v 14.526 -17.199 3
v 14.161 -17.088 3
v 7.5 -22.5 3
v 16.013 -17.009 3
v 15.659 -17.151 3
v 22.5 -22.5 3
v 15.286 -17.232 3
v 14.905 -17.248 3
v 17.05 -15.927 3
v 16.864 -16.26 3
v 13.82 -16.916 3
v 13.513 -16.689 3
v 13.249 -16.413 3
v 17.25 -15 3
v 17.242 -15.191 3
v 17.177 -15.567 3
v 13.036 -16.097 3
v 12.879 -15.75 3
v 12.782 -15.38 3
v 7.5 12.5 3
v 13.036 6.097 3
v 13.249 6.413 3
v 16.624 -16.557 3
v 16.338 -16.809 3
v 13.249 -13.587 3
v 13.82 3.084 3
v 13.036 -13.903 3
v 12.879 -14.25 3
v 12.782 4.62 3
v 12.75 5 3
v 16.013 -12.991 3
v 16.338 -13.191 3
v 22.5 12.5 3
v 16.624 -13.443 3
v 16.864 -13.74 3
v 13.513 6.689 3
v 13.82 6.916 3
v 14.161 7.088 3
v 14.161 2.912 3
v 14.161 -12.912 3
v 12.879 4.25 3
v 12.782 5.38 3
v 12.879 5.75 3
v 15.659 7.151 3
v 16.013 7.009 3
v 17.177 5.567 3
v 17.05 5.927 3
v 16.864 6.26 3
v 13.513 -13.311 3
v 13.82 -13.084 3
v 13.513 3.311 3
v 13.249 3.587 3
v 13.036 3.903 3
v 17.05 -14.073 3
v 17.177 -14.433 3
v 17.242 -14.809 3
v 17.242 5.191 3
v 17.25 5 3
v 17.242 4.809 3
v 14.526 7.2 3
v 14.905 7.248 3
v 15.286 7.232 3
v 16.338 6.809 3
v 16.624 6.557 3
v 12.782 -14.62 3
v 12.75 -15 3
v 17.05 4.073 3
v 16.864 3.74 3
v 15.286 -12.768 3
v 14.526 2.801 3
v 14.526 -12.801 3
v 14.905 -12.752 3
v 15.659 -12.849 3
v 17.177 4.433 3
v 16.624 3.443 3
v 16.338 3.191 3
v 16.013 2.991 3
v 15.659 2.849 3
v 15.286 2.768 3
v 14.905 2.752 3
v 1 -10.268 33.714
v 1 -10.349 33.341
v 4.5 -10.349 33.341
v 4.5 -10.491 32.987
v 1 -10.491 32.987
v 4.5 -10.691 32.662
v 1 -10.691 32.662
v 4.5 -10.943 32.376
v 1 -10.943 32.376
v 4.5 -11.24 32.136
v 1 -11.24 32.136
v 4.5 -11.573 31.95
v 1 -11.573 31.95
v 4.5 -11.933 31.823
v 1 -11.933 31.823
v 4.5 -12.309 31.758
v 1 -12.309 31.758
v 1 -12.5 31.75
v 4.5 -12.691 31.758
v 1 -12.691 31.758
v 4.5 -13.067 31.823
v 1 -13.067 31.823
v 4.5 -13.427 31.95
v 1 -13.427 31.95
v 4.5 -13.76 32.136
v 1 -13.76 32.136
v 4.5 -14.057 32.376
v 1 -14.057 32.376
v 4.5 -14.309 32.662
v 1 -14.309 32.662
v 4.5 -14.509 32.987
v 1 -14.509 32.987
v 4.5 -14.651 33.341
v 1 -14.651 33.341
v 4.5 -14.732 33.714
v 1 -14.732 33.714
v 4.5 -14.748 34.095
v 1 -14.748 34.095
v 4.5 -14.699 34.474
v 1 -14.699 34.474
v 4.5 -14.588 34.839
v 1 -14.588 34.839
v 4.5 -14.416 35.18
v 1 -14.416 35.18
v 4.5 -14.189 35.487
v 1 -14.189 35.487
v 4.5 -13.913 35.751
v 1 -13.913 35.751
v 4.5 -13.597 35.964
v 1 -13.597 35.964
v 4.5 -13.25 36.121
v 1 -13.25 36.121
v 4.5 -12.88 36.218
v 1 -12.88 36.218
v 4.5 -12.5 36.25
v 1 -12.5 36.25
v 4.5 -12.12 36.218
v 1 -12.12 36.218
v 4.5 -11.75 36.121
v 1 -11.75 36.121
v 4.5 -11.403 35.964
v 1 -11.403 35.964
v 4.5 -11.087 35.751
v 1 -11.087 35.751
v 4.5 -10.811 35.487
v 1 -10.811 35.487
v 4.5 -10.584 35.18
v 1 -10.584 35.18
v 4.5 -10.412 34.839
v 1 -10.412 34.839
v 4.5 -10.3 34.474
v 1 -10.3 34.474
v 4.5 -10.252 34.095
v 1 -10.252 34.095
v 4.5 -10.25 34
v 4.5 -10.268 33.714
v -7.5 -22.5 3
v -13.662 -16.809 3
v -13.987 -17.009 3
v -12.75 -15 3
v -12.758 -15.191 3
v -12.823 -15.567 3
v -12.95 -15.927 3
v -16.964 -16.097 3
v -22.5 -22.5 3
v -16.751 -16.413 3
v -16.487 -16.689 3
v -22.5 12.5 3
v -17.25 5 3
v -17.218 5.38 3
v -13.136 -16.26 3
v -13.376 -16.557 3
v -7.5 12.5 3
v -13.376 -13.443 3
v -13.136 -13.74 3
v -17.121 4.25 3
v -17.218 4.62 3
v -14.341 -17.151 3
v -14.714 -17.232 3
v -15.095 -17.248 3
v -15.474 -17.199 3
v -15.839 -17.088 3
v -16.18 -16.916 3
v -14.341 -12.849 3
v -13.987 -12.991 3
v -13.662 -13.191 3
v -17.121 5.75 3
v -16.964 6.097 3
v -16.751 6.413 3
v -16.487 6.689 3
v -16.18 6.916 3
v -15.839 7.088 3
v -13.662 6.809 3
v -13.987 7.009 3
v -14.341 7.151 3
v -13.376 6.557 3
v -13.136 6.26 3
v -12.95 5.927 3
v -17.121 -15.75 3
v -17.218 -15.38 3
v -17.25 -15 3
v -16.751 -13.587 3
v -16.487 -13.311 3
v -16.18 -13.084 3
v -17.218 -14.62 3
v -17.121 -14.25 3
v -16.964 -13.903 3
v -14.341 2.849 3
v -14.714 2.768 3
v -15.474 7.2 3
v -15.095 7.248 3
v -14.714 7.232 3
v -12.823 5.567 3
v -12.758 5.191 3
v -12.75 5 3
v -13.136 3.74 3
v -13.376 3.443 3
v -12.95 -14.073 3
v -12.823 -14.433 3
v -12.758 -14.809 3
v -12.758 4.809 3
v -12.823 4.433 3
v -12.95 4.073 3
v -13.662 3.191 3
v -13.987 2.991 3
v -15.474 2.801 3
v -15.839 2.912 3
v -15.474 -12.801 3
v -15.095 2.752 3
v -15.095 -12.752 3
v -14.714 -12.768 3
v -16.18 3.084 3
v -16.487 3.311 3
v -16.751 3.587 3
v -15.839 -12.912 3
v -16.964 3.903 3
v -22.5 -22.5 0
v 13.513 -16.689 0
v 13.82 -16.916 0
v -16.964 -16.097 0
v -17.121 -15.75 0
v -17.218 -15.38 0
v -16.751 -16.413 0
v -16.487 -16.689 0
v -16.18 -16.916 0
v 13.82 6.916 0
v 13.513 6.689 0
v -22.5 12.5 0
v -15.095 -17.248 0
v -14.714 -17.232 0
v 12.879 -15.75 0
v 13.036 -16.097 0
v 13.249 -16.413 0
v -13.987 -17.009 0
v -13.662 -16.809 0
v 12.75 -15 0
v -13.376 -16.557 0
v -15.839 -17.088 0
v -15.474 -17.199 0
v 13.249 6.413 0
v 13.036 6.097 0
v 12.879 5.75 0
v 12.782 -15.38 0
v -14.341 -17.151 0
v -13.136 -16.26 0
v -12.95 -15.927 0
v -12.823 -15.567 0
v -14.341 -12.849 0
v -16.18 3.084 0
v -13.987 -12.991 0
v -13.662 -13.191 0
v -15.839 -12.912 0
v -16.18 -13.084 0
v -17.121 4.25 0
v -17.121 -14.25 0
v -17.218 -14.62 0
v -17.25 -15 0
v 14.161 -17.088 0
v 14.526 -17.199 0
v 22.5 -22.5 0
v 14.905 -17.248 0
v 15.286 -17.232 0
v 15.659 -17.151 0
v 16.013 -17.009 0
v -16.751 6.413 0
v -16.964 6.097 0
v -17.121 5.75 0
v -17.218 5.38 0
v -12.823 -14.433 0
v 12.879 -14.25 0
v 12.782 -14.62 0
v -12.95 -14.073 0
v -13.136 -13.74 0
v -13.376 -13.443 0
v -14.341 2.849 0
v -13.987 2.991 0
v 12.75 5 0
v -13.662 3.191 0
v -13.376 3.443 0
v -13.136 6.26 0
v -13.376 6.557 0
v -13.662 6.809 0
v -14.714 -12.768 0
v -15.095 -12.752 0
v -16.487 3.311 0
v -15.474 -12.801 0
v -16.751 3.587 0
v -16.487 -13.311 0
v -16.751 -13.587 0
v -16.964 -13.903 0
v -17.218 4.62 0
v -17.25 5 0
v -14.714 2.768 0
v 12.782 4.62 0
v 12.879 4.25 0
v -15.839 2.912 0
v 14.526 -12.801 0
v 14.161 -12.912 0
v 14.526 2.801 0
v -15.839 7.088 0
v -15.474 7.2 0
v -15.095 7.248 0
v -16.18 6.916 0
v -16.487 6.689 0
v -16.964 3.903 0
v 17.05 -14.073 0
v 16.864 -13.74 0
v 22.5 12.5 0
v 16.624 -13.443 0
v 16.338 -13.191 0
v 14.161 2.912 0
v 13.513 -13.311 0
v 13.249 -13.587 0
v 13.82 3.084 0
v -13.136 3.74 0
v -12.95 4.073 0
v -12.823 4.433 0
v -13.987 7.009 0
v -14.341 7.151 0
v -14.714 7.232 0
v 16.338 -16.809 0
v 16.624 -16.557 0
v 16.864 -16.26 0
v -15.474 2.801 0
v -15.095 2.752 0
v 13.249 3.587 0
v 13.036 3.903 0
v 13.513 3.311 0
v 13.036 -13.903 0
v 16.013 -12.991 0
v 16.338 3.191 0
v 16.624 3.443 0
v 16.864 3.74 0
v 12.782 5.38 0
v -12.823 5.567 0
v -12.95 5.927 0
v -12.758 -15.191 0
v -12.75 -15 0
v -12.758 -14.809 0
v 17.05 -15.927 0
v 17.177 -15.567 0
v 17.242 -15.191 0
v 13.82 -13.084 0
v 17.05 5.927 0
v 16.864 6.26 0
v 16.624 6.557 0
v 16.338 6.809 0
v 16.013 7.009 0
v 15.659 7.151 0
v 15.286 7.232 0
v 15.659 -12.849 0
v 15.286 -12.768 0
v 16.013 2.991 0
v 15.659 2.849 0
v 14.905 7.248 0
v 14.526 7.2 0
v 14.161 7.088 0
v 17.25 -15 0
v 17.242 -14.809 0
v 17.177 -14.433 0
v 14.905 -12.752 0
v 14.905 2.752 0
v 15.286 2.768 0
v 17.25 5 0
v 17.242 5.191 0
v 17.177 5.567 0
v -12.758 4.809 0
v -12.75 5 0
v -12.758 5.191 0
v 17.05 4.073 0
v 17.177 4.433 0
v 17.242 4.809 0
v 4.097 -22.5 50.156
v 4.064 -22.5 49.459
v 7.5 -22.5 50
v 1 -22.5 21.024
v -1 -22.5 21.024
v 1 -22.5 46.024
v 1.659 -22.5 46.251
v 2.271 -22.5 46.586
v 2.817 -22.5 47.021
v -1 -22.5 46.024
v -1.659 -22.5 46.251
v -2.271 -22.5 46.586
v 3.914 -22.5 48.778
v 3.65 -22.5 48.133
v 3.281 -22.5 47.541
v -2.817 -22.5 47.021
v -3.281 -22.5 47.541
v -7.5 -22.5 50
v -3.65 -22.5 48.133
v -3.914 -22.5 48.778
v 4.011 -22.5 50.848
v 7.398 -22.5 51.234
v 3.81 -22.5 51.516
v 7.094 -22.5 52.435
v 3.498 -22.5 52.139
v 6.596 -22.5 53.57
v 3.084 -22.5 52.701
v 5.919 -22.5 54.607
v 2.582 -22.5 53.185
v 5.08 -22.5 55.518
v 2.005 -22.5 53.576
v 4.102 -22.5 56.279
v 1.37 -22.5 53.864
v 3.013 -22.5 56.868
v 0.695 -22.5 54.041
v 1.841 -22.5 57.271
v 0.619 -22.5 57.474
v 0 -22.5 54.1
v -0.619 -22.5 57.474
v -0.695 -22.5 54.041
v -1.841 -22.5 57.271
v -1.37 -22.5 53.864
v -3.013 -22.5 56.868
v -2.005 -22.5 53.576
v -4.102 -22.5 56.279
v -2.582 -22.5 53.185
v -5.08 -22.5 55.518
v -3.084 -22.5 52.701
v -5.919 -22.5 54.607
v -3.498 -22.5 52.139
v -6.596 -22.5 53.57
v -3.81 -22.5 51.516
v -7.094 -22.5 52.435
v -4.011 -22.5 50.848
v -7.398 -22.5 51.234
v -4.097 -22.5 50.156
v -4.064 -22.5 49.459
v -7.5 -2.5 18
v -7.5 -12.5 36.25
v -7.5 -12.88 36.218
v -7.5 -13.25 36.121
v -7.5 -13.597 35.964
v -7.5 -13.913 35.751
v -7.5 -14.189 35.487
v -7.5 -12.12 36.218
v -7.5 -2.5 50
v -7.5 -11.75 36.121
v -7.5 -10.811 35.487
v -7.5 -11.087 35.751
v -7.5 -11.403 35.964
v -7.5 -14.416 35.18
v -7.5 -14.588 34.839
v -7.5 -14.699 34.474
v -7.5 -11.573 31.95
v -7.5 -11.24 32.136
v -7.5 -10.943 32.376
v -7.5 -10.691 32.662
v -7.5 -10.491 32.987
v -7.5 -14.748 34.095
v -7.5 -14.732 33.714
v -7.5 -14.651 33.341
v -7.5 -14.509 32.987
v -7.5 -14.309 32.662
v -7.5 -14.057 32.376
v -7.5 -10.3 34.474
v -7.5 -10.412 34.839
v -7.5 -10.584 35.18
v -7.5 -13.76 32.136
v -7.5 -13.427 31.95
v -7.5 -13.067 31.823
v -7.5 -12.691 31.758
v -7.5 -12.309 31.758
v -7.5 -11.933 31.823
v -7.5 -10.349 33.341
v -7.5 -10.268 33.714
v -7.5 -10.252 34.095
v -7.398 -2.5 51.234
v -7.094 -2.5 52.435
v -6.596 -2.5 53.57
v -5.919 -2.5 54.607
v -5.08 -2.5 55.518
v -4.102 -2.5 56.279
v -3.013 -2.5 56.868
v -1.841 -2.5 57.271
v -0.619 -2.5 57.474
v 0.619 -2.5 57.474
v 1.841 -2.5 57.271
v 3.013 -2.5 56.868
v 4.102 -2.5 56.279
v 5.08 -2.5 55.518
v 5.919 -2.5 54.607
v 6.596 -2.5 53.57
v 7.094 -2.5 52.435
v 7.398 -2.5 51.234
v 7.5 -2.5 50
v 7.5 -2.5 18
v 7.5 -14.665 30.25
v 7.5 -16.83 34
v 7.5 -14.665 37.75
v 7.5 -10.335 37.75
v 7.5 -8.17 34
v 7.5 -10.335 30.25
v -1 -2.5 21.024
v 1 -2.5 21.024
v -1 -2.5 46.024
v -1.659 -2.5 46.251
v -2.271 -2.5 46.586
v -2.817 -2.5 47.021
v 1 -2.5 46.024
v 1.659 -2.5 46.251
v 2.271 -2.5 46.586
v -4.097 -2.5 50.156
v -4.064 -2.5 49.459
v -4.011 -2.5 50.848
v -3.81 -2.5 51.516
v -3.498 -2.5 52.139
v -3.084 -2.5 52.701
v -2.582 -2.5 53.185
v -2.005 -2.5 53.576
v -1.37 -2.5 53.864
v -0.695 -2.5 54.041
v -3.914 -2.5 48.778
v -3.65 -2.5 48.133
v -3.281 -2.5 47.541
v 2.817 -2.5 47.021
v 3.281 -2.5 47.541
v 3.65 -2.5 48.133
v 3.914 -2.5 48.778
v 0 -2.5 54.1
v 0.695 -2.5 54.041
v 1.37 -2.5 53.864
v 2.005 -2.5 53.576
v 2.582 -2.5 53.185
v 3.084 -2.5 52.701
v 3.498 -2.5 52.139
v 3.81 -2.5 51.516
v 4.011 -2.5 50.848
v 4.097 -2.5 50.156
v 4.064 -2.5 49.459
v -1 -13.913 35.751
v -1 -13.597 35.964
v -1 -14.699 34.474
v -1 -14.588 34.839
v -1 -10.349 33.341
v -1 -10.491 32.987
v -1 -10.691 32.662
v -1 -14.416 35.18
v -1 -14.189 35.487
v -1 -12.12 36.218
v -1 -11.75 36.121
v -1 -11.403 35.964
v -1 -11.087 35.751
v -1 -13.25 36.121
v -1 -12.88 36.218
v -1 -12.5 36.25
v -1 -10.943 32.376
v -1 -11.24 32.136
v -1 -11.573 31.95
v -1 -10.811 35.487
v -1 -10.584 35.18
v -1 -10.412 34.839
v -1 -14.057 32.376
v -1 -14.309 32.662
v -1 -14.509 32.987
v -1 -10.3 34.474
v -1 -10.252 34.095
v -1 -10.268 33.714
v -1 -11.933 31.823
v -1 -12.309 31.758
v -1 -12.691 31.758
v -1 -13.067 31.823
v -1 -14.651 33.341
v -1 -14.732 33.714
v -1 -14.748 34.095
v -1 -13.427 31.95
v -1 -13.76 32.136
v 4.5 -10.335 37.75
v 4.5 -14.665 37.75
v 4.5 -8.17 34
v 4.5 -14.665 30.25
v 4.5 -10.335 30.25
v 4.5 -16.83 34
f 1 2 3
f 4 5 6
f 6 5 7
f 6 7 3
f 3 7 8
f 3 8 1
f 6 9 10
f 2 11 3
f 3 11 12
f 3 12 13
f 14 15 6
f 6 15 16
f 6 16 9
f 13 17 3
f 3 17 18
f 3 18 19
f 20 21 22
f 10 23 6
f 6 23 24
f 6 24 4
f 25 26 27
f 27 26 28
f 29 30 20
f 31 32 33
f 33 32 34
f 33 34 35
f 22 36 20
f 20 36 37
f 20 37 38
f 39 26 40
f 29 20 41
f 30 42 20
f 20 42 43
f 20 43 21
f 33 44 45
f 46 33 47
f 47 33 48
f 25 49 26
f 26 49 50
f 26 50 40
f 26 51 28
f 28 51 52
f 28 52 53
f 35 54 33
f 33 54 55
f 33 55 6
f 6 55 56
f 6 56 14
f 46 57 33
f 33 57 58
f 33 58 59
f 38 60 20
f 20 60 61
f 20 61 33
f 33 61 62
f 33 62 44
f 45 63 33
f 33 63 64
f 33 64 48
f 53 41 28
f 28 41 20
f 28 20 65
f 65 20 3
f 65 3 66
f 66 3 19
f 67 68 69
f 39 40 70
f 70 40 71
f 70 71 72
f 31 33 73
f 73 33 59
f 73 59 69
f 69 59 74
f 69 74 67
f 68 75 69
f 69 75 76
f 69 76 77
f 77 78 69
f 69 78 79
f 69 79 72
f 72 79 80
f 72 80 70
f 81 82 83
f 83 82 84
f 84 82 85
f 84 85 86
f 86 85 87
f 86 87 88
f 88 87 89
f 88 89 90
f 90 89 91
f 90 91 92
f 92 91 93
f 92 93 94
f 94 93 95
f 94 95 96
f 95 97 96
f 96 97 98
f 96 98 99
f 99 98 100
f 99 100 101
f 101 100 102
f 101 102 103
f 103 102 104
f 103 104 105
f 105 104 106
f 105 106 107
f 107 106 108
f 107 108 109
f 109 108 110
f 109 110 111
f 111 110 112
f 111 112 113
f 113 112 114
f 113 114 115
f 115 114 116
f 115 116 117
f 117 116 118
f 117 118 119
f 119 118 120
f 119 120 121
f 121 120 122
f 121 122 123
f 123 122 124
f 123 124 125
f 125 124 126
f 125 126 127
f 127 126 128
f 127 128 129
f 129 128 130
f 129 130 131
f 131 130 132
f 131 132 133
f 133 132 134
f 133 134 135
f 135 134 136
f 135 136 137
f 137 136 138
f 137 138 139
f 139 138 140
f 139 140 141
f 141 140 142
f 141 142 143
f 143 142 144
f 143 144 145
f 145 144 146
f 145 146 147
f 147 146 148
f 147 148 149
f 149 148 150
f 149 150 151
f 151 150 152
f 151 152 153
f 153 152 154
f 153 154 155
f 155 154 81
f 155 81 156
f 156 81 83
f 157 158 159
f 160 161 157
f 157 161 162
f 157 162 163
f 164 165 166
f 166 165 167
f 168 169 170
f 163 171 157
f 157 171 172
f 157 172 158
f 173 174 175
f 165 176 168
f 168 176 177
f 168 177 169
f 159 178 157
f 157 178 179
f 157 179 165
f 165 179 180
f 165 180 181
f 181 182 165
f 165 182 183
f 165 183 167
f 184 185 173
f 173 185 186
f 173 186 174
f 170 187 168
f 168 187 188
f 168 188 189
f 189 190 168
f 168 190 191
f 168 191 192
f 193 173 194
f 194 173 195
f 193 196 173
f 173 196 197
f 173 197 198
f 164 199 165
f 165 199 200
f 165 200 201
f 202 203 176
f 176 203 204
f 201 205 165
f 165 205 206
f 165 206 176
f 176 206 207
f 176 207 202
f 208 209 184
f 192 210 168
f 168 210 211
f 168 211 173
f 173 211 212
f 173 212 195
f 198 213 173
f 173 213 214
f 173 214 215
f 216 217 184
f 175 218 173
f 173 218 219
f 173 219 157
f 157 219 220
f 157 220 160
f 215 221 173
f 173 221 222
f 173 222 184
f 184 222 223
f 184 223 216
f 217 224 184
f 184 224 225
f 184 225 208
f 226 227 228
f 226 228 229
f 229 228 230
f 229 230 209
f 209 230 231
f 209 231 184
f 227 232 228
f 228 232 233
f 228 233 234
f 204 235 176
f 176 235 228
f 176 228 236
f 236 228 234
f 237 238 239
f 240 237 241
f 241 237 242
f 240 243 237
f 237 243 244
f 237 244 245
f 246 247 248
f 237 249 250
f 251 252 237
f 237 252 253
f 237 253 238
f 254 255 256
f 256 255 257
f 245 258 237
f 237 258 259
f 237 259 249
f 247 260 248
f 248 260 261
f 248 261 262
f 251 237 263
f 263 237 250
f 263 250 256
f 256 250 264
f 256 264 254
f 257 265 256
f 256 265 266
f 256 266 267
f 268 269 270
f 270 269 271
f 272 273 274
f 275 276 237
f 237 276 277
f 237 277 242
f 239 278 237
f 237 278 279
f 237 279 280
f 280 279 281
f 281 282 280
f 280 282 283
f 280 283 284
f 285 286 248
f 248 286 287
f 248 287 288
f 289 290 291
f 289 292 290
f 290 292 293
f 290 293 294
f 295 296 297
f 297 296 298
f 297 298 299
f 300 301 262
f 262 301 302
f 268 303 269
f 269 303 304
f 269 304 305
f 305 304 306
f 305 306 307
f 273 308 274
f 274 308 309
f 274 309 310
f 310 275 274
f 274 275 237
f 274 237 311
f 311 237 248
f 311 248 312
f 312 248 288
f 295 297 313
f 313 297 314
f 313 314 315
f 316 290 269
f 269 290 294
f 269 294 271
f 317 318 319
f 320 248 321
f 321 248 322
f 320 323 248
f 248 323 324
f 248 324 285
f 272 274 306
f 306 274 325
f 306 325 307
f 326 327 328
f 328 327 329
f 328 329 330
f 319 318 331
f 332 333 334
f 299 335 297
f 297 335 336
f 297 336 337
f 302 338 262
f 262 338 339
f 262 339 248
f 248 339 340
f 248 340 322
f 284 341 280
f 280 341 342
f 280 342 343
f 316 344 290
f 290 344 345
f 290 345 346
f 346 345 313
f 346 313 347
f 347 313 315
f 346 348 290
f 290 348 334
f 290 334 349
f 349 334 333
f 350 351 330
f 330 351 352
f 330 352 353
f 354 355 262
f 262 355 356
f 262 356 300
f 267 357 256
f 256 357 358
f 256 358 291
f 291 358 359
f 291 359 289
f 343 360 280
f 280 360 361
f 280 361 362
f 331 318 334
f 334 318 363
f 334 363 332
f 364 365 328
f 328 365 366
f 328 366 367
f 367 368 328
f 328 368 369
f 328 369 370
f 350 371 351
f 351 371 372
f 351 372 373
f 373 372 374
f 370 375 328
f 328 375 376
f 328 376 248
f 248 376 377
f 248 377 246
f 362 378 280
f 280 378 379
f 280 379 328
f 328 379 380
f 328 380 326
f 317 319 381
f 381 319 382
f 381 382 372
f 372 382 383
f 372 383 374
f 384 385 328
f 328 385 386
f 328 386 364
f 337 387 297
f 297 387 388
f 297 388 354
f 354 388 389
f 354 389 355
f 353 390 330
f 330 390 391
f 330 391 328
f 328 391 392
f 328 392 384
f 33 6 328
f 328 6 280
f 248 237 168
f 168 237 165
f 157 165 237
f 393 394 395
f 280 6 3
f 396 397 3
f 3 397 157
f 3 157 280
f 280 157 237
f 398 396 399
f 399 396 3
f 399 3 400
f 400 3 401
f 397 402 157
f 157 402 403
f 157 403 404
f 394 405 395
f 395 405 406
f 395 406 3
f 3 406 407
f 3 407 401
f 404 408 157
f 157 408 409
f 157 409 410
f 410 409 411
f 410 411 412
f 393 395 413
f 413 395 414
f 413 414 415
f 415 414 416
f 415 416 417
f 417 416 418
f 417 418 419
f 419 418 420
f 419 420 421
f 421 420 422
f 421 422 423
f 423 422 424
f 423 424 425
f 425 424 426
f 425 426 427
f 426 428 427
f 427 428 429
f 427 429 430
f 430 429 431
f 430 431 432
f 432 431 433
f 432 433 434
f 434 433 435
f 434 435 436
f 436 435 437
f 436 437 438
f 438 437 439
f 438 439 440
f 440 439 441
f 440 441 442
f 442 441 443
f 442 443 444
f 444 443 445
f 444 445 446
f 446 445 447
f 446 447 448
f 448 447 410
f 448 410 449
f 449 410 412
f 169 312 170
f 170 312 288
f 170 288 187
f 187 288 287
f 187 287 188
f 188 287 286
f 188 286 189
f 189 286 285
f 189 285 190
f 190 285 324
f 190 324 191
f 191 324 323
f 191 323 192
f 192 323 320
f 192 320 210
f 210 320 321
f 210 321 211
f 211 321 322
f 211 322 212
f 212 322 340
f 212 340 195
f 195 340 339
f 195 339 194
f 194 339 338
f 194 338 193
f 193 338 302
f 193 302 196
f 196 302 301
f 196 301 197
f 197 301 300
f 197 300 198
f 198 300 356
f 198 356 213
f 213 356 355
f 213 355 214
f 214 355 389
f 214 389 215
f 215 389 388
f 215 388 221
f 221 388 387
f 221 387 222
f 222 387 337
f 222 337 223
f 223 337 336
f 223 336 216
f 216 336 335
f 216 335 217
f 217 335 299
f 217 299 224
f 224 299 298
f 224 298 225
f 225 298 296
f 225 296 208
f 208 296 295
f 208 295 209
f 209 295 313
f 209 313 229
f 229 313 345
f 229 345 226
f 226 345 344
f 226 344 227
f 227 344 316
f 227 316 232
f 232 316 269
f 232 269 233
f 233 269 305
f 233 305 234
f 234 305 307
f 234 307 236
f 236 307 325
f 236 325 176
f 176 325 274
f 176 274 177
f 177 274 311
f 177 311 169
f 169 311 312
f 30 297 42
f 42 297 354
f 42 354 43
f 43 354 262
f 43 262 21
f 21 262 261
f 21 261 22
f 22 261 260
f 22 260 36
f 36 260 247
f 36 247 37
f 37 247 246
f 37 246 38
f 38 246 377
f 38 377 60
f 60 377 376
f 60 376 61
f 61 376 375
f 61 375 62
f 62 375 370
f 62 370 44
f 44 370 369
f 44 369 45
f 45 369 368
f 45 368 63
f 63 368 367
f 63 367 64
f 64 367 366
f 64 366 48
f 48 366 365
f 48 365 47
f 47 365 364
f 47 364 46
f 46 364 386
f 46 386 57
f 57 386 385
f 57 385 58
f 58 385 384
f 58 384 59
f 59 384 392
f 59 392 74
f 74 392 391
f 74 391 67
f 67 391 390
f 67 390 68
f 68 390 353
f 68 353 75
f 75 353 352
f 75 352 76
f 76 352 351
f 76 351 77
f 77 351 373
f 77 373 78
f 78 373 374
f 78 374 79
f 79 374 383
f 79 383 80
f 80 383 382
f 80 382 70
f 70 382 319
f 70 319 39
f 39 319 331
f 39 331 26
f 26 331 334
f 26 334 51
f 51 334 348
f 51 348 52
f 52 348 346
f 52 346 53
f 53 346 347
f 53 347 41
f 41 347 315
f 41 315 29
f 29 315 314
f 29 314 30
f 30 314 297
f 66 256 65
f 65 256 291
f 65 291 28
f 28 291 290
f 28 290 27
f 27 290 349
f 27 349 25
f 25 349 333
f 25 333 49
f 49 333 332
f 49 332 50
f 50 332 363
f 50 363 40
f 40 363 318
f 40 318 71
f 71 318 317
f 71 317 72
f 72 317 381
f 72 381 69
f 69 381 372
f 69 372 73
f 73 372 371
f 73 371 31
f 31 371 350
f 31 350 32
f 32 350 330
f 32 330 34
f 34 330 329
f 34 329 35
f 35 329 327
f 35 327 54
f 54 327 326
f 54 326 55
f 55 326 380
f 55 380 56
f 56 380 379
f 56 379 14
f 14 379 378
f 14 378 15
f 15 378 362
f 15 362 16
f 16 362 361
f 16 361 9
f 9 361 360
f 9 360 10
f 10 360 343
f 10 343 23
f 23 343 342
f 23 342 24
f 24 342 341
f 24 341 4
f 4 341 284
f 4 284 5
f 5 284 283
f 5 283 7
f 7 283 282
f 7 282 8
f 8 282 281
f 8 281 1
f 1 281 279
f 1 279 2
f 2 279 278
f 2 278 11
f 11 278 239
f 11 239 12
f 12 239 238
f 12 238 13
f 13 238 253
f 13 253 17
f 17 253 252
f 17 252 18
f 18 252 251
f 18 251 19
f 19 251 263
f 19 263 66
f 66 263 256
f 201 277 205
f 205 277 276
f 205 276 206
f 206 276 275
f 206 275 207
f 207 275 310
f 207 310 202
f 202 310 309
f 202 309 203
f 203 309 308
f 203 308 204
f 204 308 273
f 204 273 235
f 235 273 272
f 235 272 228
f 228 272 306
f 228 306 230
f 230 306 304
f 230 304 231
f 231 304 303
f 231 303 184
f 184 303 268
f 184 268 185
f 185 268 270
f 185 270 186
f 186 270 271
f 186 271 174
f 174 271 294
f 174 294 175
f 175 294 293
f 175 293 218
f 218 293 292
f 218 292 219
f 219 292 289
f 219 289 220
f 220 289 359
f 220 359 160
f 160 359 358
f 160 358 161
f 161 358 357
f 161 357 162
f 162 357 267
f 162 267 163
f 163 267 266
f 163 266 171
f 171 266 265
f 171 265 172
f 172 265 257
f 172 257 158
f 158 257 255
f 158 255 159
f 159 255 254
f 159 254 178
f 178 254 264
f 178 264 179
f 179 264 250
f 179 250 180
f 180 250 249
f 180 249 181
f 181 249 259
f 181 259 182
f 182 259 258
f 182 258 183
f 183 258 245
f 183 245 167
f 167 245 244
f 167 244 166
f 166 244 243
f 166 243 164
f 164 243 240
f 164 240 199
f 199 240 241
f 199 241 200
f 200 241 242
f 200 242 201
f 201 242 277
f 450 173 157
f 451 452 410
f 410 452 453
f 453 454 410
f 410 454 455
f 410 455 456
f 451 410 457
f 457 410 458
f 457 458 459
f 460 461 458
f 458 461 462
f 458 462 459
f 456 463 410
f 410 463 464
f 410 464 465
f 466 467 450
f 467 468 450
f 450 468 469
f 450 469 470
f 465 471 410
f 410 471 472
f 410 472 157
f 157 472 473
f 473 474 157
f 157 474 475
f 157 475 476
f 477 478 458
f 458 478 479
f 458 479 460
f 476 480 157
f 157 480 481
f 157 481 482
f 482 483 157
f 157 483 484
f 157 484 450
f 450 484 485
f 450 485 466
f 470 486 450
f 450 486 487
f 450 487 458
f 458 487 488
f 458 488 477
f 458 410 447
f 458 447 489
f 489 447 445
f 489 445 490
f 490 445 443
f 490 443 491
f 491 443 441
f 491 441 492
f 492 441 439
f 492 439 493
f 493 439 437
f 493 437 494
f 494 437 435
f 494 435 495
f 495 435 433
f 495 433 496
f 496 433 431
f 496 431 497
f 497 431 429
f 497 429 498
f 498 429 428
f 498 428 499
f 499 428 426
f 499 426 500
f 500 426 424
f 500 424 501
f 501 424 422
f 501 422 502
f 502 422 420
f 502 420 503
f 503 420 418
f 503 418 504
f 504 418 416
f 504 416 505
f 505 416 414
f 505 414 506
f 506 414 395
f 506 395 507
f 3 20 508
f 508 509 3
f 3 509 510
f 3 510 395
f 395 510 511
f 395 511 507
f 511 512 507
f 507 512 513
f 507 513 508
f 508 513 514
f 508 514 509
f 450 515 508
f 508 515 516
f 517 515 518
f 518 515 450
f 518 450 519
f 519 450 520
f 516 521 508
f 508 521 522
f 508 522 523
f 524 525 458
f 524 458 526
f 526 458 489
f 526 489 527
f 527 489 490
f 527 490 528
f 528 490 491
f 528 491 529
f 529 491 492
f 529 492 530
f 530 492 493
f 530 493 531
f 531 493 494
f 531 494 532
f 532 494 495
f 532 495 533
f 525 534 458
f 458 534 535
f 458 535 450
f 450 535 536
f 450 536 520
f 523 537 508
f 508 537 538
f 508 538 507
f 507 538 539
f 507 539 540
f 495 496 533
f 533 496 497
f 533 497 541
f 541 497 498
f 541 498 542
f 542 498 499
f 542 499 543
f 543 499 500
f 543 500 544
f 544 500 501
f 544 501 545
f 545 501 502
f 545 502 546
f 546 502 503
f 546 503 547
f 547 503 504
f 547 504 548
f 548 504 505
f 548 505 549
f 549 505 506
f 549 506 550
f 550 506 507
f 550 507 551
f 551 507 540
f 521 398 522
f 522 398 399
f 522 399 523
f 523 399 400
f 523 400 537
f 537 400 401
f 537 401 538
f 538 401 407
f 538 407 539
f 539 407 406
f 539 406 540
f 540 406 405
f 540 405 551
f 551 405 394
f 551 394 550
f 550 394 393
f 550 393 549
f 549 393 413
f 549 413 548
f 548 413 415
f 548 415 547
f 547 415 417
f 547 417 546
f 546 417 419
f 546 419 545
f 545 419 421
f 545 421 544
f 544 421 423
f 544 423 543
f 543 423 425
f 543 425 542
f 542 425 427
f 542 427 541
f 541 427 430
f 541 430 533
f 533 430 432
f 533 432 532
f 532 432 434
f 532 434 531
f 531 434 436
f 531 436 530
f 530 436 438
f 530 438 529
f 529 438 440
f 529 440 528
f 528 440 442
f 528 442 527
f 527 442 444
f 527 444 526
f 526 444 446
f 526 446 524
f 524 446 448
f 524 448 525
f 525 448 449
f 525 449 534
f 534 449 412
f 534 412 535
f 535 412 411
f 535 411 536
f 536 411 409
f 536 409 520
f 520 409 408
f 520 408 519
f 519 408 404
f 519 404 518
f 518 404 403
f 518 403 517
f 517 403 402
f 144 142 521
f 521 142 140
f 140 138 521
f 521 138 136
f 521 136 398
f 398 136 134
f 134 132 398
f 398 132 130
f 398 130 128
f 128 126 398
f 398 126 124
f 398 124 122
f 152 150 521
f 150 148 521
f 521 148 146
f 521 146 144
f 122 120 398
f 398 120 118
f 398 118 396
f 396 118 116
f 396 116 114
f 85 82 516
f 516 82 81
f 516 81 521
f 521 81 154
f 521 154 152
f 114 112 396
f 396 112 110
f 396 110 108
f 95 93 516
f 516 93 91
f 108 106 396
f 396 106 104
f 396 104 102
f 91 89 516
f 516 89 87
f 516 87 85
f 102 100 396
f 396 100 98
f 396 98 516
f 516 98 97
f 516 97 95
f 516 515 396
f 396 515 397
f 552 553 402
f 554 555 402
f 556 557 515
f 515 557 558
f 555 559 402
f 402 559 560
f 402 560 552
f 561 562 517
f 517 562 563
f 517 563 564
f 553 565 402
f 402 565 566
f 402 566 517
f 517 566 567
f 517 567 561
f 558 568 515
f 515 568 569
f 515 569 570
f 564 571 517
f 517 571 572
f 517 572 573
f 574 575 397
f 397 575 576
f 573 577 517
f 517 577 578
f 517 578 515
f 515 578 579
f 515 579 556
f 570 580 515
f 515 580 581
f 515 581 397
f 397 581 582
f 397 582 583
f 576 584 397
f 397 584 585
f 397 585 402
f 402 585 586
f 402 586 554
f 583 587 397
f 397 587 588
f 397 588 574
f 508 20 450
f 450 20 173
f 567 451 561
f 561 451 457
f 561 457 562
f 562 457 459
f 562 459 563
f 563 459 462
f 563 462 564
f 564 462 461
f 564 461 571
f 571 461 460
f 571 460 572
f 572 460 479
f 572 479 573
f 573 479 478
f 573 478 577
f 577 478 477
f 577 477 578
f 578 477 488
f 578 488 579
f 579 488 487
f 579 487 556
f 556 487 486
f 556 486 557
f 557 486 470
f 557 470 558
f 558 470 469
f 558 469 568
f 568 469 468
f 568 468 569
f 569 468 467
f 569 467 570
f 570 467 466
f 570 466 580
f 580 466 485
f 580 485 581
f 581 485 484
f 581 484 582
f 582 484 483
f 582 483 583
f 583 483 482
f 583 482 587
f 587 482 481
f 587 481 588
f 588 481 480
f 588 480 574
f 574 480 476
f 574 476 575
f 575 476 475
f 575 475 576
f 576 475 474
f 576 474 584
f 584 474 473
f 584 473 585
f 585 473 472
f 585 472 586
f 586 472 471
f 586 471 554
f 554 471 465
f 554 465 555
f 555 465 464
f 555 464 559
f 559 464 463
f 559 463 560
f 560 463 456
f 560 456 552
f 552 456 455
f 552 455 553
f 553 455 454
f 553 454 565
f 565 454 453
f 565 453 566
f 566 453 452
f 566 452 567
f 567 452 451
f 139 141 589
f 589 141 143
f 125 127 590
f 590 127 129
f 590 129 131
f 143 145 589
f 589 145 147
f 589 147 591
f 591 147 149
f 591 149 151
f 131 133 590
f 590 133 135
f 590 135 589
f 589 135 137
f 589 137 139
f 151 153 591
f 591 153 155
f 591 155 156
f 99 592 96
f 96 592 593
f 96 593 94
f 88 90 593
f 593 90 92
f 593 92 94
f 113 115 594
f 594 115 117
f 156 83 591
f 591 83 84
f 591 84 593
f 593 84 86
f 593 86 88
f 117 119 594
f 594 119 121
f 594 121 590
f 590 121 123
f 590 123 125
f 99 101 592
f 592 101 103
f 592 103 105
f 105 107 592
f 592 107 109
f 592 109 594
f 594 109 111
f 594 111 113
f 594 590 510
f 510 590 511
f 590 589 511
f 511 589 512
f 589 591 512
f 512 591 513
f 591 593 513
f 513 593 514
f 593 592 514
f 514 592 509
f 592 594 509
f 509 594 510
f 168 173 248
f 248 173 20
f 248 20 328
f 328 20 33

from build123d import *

# Parameters (mm, degrees)
SKETCH1_W           = 45
SKETCH1_H           = 45
SKETCH1_R           = 2.25
BOSS_EXTRUDE1_DEPTH = 3
BOSS_EXTRUDE2_DEPTH = 20
CHAMFER1_SIZE       = 15
SKETCH4_R           = 2.25
CUT_EXTRUDE1_DEPTH  = 20
CUT_EXTRUDE2_DEPTH  = 3
SKETCH6_W           = 45
SKETCH6_H           = 10
CUT_EXTRUDE3_DEPTH  = 10


with BuildPart() as part:
    # Sketch1 → Boss-Extrude1 (new body)
    with BuildSketch(Plane.XY):
        Rectangle(SKETCH1_W, SKETCH1_H)
        with Locations((-15, 5)):
            Circle(SKETCH1_R, mode=Mode.SUBTRACT)
        with Locations((15, 5)):
            Circle(SKETCH1_R, mode=Mode.SUBTRACT)
        with Locations((15, -15)):
            Circle(SKETCH1_R, mode=Mode.SUBTRACT)
        with Locations((-15, -15)):
            Circle(SKETCH1_R, mode=Mode.SUBTRACT)
    extrude(amount=BOSS_EXTRUDE1_DEPTH)

    # Sketch3 → Boss-Extrude2 (add)
    with BuildSketch(Plane(origin=(0, -22.5, 0), x_dir=(-1, 0, 0), z_dir=(0, -1, 0))):
        with BuildLine():
            Line((7.5, -3), (-7.5, -3))
            Line((-7.5, -3), (-7.5, -50))
            ThreePointArc((-7.5, -50), (0, -57.5), (7.5, -50))
            Line((7.5, -50), (7.5, -3))
        make_face()
        with BuildLine():
            Line((1, -46.02382093), (1, -21.02382093))
            Line((1, -21.02382093), (-1, -21.02382093))
            Line((-1, -21.02382093), (-1, -46.02382093))
            ThreePointArc((-1, -46.02382093), (0, -54.1), (1, -46.02382093))
        make_face(mode=Mode.SUBTRACT)
    extrude(amount=-BOSS_EXTRUDE2_DEPTH)

    # Chamfer1
    chamfer1_edges = [part.edges().sort_by_distance(p)[0] for p in [
        (0, -2.5, 3),
    ]]
    chamfer(chamfer1_edges, length=CHAMFER1_SIZE)

    # Sketch4 → Cut-Extrude1 (cut)
    with BuildSketch(Plane.ZY.offset(7.5)):
        with Locations((34, -12.5)):
            Circle(SKETCH4_R)
    extrude(amount=-CUT_EXTRUDE1_DEPTH, mode=Mode.SUBTRACT)

    # Sketch5 → Cut-Extrude2 (cut)
    with BuildSketch(Plane(origin=(7.5, 0, 0), x_dir=(0, 0, -1), z_dir=(1, 0, 0))):
        Polygon((-34, -16.830127019), (-30.25, -14.665063509), (-30.25, -10.334936491), (-34, -8.169872981), (-37.75, -10.334936491), (-37.75, -14.665063509), align=None)
    extrude(amount=-CUT_EXTRUDE2_DEPTH, mode=Mode.SUBTRACT)

    # Sketch6 → Cut-Extrude3 (cut)
    with BuildSketch(Plane.XY.offset(3)):
        with Locations((0, 17.5)):
            Rectangle(SKETCH6_W, SKETCH6_H)
    extrude(amount=-CUT_EXTRUDE3_DEPTH, mode=Mode.SUBTRACT)


solid = part.part
